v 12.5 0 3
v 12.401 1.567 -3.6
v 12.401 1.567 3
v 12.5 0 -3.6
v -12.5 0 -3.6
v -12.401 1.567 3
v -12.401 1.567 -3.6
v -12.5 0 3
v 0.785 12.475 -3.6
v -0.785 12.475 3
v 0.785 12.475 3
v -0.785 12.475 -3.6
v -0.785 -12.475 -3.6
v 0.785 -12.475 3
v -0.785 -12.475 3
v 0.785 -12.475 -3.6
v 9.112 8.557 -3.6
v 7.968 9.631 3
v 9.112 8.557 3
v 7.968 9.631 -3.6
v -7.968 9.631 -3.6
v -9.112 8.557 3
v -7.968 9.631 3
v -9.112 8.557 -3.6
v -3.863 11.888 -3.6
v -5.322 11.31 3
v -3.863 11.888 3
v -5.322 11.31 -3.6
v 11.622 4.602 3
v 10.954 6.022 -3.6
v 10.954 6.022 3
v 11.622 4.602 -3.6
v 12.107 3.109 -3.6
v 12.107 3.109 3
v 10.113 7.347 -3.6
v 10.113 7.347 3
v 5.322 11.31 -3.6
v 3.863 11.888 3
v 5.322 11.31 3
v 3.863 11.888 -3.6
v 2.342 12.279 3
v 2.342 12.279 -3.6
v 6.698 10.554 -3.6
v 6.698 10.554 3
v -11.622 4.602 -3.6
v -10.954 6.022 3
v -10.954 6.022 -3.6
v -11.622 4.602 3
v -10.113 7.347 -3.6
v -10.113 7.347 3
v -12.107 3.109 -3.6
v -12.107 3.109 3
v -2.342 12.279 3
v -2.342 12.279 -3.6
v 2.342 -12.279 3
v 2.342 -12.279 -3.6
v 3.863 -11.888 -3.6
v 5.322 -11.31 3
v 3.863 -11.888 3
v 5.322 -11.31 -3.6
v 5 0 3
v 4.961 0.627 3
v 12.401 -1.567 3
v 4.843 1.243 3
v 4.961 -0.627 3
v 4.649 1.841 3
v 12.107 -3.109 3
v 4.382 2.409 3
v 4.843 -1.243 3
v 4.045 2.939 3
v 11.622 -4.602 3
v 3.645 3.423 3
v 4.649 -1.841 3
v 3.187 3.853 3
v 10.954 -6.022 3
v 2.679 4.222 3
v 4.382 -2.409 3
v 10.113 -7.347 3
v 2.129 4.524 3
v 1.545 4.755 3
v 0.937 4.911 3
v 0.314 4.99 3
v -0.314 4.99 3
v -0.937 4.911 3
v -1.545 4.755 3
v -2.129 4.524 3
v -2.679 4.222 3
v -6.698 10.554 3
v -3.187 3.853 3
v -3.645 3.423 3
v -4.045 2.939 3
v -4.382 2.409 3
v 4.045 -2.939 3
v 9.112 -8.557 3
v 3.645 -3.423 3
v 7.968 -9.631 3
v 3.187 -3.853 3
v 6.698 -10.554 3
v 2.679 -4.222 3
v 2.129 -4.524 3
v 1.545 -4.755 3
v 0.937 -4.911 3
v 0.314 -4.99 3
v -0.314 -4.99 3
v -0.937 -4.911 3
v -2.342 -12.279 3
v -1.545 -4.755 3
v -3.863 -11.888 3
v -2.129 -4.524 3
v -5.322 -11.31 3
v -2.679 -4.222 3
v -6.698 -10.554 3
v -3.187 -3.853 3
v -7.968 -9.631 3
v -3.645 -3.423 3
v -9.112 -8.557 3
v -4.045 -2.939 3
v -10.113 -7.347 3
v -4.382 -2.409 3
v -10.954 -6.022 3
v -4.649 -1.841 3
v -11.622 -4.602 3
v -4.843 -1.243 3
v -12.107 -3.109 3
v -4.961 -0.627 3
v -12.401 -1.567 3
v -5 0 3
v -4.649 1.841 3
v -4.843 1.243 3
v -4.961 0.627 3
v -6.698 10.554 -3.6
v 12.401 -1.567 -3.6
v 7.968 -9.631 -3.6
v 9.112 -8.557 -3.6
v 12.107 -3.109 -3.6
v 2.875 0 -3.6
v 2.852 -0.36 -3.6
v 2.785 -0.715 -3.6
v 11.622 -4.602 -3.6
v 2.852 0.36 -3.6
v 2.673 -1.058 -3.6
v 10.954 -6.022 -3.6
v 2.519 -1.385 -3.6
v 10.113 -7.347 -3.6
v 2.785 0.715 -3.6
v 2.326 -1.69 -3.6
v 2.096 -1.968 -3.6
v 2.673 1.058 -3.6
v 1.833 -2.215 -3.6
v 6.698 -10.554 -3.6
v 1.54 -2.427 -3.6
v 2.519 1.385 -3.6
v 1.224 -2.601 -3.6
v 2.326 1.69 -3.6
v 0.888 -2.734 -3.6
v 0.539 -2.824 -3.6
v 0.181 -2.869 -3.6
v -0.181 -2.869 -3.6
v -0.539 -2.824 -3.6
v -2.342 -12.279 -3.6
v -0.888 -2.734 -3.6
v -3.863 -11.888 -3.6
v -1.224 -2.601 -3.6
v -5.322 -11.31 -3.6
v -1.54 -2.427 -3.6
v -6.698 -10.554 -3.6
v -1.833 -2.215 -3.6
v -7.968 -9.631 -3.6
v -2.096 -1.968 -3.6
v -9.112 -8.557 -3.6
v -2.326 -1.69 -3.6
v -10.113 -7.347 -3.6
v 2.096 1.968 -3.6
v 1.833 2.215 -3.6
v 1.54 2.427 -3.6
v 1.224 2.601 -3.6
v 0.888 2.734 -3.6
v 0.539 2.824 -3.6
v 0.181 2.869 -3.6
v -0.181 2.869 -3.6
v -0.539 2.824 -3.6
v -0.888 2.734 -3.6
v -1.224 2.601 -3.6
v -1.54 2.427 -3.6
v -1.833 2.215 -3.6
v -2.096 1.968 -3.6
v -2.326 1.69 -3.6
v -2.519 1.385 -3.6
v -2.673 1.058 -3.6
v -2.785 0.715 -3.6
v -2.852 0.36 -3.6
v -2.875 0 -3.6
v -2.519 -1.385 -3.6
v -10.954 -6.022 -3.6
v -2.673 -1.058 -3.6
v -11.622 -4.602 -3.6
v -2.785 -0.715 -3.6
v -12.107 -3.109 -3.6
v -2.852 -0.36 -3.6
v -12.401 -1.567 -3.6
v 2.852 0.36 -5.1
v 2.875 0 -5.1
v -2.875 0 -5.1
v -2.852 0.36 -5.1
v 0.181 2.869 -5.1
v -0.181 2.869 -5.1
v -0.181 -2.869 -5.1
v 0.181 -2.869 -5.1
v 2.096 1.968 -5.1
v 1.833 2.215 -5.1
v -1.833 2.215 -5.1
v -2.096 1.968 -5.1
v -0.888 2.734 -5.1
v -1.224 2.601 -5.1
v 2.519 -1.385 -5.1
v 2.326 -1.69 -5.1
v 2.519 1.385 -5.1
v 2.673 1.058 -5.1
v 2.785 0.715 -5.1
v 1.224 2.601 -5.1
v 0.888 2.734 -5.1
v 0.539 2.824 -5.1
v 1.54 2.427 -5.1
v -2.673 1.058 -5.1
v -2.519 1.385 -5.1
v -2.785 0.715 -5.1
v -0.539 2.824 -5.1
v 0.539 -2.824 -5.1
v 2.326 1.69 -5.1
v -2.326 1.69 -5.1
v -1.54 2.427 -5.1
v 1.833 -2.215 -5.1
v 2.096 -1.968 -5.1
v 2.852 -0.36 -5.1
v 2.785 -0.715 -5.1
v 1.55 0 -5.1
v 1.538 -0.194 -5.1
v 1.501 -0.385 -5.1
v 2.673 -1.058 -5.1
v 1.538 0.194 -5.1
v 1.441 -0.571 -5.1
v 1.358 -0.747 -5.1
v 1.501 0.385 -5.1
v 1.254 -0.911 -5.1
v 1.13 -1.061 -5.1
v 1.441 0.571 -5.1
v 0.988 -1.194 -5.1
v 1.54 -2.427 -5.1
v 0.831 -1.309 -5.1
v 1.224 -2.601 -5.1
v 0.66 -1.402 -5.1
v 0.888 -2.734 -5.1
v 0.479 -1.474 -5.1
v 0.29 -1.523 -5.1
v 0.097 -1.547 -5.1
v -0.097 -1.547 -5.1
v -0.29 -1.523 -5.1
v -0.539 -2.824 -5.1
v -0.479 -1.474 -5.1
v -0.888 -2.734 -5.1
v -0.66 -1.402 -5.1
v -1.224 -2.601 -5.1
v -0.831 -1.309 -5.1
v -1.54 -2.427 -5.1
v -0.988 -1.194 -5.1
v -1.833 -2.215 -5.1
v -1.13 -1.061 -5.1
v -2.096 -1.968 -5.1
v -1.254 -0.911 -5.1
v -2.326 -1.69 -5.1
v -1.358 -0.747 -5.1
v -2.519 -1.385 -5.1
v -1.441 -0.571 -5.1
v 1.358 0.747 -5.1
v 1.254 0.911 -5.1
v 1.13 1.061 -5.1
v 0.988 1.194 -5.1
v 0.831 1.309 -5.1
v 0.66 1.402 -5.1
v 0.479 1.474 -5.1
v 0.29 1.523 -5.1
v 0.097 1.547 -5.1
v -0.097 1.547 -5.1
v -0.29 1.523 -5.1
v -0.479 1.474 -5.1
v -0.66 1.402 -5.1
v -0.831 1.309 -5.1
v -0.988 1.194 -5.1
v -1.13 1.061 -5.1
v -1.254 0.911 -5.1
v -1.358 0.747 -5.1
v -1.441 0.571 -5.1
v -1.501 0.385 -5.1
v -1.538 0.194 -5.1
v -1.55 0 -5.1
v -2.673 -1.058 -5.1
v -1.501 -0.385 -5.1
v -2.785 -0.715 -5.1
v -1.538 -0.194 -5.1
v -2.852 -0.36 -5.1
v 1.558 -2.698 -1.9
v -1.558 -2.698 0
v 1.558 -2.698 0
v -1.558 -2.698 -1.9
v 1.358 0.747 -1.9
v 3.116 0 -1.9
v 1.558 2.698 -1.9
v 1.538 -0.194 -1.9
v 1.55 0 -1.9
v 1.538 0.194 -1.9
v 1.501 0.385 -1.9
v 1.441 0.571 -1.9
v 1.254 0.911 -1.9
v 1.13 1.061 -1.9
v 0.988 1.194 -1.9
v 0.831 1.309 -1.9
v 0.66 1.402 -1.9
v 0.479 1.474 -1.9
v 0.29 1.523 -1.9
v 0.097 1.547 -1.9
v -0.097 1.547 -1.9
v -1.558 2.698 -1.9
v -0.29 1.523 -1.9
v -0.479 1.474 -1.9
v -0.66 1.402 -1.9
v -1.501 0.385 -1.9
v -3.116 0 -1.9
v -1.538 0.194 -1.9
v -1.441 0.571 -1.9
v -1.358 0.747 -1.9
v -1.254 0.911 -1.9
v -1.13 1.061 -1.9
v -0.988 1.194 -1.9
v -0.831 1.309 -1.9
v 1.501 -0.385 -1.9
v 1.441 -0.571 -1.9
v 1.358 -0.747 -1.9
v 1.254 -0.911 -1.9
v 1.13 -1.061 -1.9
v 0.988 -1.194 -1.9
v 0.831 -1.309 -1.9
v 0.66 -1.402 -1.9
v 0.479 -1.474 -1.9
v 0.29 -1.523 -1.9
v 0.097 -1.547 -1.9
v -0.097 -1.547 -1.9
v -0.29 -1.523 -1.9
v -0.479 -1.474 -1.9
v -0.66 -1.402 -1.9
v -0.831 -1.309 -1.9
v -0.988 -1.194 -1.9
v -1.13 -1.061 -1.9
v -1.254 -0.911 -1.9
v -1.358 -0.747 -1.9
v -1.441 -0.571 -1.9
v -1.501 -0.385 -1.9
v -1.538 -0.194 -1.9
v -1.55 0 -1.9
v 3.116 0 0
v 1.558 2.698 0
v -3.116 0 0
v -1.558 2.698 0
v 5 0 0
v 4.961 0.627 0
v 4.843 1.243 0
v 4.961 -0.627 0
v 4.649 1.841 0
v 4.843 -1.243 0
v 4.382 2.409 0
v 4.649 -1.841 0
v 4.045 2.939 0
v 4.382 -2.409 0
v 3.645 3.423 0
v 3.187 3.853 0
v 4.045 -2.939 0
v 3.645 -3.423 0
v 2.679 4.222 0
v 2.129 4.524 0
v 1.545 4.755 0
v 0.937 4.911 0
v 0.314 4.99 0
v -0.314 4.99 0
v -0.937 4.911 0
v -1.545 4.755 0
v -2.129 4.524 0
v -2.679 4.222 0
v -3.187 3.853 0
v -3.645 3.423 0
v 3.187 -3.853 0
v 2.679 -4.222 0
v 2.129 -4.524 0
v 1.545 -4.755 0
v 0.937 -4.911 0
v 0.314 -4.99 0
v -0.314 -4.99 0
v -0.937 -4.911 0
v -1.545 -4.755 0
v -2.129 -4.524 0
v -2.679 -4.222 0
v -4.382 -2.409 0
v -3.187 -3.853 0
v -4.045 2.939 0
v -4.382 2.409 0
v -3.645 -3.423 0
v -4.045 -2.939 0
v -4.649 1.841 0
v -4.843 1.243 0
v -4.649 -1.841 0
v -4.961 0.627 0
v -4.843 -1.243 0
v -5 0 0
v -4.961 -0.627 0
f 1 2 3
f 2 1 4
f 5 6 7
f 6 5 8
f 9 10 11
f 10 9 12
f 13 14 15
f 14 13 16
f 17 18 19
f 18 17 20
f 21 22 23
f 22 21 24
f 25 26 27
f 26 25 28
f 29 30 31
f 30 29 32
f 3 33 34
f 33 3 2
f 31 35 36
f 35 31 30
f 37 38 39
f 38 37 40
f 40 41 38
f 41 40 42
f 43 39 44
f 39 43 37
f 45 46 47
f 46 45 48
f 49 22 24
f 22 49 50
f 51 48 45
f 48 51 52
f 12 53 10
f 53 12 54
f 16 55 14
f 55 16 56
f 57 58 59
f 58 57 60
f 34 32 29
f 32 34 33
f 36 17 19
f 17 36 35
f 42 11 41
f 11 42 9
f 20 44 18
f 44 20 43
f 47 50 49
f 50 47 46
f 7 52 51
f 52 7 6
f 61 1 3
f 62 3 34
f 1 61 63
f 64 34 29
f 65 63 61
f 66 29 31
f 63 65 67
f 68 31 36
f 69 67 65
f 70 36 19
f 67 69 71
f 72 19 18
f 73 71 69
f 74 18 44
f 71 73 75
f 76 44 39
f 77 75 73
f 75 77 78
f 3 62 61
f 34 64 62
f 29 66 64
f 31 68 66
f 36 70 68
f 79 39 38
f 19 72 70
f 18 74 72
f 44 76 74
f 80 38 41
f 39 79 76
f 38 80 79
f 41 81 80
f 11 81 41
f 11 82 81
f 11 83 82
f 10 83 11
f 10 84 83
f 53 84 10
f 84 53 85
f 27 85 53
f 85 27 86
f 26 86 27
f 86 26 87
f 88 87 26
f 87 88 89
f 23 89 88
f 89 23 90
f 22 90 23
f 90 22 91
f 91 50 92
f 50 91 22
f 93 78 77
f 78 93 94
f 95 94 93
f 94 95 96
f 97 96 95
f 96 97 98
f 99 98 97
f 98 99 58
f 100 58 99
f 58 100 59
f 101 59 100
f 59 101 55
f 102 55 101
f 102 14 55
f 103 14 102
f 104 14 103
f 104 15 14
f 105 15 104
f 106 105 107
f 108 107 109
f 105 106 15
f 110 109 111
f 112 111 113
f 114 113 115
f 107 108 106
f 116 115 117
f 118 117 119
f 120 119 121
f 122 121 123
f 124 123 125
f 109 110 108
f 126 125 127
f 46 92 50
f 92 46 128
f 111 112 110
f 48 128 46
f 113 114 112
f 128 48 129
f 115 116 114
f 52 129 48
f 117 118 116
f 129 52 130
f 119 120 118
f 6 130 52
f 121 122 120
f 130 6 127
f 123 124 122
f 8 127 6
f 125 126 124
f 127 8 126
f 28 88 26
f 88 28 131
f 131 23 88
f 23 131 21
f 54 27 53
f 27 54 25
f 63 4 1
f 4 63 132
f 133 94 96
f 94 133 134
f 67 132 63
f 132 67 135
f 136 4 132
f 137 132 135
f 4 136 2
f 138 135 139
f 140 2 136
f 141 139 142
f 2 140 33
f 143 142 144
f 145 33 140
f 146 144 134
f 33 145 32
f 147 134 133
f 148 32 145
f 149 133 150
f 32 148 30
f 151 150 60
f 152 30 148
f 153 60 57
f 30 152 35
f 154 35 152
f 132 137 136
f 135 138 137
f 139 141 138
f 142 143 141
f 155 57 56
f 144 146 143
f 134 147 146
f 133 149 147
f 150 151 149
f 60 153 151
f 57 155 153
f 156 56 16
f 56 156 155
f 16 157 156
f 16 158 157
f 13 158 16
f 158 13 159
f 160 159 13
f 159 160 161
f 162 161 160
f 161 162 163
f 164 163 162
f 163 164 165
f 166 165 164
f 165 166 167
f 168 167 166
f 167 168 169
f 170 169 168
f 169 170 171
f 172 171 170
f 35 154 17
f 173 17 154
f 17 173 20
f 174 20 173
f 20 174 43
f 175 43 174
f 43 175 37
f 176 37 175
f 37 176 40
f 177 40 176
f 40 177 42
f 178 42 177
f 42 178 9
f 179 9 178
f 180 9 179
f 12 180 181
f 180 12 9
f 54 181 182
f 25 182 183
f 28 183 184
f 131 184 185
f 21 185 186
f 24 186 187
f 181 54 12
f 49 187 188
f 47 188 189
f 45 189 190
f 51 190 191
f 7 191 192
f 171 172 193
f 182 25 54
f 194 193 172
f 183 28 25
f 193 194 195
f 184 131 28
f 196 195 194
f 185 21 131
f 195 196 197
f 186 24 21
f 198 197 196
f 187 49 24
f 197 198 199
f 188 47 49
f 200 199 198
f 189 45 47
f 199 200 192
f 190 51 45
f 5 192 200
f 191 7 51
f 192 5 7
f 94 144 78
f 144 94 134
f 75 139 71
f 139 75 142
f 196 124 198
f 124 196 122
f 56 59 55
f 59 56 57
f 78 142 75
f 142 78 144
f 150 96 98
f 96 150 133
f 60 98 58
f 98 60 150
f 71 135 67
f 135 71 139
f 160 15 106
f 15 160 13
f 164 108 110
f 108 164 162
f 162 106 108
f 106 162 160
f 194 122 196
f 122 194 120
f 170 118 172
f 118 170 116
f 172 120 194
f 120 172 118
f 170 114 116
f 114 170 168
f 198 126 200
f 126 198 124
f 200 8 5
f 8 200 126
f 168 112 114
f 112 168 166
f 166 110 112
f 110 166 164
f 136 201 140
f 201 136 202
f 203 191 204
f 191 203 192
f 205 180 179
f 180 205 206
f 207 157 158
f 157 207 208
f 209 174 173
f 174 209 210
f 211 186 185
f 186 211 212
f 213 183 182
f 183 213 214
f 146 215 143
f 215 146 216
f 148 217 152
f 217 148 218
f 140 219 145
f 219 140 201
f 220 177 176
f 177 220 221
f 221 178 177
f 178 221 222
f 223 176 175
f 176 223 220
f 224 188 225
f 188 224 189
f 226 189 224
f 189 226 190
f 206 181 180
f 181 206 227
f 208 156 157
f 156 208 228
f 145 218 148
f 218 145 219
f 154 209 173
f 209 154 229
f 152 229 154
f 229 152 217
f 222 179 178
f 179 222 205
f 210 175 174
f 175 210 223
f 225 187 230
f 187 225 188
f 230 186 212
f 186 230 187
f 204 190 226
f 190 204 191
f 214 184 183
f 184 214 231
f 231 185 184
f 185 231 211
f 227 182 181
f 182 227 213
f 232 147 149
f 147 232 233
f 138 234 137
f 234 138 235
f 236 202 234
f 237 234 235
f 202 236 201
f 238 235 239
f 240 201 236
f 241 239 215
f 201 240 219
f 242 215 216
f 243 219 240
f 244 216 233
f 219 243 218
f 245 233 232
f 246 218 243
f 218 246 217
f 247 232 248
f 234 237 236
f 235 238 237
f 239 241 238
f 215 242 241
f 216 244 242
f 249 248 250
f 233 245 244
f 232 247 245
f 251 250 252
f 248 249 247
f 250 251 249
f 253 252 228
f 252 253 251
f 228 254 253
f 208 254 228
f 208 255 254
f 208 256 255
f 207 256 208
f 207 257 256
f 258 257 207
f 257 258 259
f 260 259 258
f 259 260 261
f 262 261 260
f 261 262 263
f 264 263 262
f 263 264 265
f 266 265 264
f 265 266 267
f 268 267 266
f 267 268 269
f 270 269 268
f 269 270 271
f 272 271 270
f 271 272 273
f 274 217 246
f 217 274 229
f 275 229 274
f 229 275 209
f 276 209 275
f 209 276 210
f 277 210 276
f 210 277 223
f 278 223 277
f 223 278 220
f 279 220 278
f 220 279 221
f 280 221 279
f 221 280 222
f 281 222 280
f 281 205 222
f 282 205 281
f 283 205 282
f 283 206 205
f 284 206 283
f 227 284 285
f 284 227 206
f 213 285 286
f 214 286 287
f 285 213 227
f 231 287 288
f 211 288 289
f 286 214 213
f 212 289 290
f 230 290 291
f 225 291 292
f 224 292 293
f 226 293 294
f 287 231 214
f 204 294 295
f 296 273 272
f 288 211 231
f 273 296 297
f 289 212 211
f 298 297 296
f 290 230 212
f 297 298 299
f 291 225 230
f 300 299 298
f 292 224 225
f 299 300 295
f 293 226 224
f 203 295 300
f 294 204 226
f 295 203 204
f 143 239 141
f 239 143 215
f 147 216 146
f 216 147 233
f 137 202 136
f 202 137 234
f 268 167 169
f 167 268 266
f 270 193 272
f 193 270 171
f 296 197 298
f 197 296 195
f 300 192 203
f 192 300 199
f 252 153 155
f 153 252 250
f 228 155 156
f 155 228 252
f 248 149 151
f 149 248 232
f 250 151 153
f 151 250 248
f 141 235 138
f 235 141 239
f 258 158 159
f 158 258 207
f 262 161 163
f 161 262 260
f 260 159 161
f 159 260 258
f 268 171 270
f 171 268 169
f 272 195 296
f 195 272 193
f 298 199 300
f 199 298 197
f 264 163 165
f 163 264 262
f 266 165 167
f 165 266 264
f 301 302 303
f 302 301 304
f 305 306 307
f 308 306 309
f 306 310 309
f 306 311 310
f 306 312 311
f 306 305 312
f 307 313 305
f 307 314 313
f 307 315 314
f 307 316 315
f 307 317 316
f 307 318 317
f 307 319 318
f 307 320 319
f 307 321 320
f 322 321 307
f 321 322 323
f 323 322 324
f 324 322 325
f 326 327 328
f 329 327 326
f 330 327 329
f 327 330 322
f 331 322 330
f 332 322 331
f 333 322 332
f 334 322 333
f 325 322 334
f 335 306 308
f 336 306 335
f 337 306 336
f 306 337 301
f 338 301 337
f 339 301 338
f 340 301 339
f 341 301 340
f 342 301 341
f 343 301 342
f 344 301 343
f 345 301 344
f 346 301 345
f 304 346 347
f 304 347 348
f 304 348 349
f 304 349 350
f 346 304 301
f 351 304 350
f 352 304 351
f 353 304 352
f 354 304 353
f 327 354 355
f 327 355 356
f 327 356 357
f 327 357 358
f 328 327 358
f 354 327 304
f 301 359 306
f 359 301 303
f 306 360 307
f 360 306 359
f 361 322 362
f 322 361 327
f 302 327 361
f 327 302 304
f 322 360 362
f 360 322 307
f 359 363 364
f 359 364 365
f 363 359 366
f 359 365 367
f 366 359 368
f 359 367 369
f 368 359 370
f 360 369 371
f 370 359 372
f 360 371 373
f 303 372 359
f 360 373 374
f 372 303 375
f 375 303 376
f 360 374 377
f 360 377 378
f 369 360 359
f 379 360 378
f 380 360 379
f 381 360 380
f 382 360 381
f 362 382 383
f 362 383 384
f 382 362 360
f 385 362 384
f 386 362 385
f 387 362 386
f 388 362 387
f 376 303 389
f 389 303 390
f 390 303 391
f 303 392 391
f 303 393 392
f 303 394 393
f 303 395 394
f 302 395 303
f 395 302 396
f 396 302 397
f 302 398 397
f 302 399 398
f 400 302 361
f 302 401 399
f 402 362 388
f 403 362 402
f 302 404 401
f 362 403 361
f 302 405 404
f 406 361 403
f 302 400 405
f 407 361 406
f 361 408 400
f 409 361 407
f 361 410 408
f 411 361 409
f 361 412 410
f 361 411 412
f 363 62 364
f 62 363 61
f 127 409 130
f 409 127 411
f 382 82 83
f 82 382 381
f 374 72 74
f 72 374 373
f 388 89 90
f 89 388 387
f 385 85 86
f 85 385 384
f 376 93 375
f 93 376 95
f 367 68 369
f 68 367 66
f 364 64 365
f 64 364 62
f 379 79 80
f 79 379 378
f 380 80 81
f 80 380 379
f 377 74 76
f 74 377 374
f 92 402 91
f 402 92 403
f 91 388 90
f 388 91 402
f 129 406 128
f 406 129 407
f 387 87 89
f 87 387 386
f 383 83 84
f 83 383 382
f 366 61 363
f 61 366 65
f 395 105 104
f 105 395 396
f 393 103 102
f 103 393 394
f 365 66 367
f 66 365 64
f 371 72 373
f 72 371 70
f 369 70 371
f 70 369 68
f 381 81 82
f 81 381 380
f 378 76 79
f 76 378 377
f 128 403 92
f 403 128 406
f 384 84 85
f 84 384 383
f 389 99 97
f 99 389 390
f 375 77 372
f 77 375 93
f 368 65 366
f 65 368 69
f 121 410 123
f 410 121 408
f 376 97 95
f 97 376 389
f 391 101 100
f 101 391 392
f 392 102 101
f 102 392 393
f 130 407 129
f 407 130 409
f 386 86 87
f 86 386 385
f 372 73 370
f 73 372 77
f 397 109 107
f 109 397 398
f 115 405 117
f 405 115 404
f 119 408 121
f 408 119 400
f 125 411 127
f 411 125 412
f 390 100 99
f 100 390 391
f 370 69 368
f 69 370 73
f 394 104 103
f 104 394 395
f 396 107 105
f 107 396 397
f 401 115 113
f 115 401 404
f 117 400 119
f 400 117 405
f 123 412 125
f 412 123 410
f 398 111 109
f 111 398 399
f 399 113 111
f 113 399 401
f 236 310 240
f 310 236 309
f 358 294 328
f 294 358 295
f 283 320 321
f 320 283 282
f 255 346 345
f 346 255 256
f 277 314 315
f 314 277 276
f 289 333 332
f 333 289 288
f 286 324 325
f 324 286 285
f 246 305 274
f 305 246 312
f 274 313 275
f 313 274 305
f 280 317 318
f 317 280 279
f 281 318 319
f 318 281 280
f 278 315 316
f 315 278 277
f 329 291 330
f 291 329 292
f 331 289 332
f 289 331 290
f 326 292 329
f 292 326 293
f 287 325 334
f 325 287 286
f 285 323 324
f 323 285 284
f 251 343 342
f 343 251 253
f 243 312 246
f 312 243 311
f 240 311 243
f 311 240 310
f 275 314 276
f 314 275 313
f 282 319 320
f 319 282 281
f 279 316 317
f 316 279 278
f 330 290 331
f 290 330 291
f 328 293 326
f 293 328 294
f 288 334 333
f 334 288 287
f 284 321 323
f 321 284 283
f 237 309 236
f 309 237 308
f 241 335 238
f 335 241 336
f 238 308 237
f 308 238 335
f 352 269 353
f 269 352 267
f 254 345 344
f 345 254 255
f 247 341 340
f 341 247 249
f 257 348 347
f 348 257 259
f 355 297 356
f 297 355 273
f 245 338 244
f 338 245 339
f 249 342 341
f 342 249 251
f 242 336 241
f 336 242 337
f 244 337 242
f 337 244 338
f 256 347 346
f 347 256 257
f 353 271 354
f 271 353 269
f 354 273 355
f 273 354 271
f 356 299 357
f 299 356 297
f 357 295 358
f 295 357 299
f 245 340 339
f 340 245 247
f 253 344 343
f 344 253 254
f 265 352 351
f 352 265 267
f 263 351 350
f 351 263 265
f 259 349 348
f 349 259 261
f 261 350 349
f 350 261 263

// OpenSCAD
$fn = 50;

difference() {
	union() {
		translate(v = [0, 0, -3.5999999999999996]) {
			cylinder(h = 6.6, r = 12.5);
		}
		#translate(v = [0, 0, -5.1]) {
			cylinder(h = 5.1, r = 2.875);
		}
	}
	union() {
		translate(v = [0, 0, 0]) {
			rotate(a = [0, 0, 0]) {
				difference() {
					union() {
						translate(v = [0, 0, -1.9]) {
							linear_extrude(height = 1.9) {
								polygon(points = [[3.1158, 0.0], [1.5579000000000005, 2.698361953111554], [-1.5578999999999994, 2.6983619531115544], [-3.1158, 3.815754496783323e-16], [-1.5579000000000014, -2.6983619531115535], [1.557899999999998, -2.6983619531115552]]);
							}
						}
					}
					union();
				}
			}
		}
		#cylinder(h = 3, r = 5.0);
		#translate(v = [0, 0, -100.0]) {
			cylinder(h = 200, r = 1.55);
		}
	}
}
